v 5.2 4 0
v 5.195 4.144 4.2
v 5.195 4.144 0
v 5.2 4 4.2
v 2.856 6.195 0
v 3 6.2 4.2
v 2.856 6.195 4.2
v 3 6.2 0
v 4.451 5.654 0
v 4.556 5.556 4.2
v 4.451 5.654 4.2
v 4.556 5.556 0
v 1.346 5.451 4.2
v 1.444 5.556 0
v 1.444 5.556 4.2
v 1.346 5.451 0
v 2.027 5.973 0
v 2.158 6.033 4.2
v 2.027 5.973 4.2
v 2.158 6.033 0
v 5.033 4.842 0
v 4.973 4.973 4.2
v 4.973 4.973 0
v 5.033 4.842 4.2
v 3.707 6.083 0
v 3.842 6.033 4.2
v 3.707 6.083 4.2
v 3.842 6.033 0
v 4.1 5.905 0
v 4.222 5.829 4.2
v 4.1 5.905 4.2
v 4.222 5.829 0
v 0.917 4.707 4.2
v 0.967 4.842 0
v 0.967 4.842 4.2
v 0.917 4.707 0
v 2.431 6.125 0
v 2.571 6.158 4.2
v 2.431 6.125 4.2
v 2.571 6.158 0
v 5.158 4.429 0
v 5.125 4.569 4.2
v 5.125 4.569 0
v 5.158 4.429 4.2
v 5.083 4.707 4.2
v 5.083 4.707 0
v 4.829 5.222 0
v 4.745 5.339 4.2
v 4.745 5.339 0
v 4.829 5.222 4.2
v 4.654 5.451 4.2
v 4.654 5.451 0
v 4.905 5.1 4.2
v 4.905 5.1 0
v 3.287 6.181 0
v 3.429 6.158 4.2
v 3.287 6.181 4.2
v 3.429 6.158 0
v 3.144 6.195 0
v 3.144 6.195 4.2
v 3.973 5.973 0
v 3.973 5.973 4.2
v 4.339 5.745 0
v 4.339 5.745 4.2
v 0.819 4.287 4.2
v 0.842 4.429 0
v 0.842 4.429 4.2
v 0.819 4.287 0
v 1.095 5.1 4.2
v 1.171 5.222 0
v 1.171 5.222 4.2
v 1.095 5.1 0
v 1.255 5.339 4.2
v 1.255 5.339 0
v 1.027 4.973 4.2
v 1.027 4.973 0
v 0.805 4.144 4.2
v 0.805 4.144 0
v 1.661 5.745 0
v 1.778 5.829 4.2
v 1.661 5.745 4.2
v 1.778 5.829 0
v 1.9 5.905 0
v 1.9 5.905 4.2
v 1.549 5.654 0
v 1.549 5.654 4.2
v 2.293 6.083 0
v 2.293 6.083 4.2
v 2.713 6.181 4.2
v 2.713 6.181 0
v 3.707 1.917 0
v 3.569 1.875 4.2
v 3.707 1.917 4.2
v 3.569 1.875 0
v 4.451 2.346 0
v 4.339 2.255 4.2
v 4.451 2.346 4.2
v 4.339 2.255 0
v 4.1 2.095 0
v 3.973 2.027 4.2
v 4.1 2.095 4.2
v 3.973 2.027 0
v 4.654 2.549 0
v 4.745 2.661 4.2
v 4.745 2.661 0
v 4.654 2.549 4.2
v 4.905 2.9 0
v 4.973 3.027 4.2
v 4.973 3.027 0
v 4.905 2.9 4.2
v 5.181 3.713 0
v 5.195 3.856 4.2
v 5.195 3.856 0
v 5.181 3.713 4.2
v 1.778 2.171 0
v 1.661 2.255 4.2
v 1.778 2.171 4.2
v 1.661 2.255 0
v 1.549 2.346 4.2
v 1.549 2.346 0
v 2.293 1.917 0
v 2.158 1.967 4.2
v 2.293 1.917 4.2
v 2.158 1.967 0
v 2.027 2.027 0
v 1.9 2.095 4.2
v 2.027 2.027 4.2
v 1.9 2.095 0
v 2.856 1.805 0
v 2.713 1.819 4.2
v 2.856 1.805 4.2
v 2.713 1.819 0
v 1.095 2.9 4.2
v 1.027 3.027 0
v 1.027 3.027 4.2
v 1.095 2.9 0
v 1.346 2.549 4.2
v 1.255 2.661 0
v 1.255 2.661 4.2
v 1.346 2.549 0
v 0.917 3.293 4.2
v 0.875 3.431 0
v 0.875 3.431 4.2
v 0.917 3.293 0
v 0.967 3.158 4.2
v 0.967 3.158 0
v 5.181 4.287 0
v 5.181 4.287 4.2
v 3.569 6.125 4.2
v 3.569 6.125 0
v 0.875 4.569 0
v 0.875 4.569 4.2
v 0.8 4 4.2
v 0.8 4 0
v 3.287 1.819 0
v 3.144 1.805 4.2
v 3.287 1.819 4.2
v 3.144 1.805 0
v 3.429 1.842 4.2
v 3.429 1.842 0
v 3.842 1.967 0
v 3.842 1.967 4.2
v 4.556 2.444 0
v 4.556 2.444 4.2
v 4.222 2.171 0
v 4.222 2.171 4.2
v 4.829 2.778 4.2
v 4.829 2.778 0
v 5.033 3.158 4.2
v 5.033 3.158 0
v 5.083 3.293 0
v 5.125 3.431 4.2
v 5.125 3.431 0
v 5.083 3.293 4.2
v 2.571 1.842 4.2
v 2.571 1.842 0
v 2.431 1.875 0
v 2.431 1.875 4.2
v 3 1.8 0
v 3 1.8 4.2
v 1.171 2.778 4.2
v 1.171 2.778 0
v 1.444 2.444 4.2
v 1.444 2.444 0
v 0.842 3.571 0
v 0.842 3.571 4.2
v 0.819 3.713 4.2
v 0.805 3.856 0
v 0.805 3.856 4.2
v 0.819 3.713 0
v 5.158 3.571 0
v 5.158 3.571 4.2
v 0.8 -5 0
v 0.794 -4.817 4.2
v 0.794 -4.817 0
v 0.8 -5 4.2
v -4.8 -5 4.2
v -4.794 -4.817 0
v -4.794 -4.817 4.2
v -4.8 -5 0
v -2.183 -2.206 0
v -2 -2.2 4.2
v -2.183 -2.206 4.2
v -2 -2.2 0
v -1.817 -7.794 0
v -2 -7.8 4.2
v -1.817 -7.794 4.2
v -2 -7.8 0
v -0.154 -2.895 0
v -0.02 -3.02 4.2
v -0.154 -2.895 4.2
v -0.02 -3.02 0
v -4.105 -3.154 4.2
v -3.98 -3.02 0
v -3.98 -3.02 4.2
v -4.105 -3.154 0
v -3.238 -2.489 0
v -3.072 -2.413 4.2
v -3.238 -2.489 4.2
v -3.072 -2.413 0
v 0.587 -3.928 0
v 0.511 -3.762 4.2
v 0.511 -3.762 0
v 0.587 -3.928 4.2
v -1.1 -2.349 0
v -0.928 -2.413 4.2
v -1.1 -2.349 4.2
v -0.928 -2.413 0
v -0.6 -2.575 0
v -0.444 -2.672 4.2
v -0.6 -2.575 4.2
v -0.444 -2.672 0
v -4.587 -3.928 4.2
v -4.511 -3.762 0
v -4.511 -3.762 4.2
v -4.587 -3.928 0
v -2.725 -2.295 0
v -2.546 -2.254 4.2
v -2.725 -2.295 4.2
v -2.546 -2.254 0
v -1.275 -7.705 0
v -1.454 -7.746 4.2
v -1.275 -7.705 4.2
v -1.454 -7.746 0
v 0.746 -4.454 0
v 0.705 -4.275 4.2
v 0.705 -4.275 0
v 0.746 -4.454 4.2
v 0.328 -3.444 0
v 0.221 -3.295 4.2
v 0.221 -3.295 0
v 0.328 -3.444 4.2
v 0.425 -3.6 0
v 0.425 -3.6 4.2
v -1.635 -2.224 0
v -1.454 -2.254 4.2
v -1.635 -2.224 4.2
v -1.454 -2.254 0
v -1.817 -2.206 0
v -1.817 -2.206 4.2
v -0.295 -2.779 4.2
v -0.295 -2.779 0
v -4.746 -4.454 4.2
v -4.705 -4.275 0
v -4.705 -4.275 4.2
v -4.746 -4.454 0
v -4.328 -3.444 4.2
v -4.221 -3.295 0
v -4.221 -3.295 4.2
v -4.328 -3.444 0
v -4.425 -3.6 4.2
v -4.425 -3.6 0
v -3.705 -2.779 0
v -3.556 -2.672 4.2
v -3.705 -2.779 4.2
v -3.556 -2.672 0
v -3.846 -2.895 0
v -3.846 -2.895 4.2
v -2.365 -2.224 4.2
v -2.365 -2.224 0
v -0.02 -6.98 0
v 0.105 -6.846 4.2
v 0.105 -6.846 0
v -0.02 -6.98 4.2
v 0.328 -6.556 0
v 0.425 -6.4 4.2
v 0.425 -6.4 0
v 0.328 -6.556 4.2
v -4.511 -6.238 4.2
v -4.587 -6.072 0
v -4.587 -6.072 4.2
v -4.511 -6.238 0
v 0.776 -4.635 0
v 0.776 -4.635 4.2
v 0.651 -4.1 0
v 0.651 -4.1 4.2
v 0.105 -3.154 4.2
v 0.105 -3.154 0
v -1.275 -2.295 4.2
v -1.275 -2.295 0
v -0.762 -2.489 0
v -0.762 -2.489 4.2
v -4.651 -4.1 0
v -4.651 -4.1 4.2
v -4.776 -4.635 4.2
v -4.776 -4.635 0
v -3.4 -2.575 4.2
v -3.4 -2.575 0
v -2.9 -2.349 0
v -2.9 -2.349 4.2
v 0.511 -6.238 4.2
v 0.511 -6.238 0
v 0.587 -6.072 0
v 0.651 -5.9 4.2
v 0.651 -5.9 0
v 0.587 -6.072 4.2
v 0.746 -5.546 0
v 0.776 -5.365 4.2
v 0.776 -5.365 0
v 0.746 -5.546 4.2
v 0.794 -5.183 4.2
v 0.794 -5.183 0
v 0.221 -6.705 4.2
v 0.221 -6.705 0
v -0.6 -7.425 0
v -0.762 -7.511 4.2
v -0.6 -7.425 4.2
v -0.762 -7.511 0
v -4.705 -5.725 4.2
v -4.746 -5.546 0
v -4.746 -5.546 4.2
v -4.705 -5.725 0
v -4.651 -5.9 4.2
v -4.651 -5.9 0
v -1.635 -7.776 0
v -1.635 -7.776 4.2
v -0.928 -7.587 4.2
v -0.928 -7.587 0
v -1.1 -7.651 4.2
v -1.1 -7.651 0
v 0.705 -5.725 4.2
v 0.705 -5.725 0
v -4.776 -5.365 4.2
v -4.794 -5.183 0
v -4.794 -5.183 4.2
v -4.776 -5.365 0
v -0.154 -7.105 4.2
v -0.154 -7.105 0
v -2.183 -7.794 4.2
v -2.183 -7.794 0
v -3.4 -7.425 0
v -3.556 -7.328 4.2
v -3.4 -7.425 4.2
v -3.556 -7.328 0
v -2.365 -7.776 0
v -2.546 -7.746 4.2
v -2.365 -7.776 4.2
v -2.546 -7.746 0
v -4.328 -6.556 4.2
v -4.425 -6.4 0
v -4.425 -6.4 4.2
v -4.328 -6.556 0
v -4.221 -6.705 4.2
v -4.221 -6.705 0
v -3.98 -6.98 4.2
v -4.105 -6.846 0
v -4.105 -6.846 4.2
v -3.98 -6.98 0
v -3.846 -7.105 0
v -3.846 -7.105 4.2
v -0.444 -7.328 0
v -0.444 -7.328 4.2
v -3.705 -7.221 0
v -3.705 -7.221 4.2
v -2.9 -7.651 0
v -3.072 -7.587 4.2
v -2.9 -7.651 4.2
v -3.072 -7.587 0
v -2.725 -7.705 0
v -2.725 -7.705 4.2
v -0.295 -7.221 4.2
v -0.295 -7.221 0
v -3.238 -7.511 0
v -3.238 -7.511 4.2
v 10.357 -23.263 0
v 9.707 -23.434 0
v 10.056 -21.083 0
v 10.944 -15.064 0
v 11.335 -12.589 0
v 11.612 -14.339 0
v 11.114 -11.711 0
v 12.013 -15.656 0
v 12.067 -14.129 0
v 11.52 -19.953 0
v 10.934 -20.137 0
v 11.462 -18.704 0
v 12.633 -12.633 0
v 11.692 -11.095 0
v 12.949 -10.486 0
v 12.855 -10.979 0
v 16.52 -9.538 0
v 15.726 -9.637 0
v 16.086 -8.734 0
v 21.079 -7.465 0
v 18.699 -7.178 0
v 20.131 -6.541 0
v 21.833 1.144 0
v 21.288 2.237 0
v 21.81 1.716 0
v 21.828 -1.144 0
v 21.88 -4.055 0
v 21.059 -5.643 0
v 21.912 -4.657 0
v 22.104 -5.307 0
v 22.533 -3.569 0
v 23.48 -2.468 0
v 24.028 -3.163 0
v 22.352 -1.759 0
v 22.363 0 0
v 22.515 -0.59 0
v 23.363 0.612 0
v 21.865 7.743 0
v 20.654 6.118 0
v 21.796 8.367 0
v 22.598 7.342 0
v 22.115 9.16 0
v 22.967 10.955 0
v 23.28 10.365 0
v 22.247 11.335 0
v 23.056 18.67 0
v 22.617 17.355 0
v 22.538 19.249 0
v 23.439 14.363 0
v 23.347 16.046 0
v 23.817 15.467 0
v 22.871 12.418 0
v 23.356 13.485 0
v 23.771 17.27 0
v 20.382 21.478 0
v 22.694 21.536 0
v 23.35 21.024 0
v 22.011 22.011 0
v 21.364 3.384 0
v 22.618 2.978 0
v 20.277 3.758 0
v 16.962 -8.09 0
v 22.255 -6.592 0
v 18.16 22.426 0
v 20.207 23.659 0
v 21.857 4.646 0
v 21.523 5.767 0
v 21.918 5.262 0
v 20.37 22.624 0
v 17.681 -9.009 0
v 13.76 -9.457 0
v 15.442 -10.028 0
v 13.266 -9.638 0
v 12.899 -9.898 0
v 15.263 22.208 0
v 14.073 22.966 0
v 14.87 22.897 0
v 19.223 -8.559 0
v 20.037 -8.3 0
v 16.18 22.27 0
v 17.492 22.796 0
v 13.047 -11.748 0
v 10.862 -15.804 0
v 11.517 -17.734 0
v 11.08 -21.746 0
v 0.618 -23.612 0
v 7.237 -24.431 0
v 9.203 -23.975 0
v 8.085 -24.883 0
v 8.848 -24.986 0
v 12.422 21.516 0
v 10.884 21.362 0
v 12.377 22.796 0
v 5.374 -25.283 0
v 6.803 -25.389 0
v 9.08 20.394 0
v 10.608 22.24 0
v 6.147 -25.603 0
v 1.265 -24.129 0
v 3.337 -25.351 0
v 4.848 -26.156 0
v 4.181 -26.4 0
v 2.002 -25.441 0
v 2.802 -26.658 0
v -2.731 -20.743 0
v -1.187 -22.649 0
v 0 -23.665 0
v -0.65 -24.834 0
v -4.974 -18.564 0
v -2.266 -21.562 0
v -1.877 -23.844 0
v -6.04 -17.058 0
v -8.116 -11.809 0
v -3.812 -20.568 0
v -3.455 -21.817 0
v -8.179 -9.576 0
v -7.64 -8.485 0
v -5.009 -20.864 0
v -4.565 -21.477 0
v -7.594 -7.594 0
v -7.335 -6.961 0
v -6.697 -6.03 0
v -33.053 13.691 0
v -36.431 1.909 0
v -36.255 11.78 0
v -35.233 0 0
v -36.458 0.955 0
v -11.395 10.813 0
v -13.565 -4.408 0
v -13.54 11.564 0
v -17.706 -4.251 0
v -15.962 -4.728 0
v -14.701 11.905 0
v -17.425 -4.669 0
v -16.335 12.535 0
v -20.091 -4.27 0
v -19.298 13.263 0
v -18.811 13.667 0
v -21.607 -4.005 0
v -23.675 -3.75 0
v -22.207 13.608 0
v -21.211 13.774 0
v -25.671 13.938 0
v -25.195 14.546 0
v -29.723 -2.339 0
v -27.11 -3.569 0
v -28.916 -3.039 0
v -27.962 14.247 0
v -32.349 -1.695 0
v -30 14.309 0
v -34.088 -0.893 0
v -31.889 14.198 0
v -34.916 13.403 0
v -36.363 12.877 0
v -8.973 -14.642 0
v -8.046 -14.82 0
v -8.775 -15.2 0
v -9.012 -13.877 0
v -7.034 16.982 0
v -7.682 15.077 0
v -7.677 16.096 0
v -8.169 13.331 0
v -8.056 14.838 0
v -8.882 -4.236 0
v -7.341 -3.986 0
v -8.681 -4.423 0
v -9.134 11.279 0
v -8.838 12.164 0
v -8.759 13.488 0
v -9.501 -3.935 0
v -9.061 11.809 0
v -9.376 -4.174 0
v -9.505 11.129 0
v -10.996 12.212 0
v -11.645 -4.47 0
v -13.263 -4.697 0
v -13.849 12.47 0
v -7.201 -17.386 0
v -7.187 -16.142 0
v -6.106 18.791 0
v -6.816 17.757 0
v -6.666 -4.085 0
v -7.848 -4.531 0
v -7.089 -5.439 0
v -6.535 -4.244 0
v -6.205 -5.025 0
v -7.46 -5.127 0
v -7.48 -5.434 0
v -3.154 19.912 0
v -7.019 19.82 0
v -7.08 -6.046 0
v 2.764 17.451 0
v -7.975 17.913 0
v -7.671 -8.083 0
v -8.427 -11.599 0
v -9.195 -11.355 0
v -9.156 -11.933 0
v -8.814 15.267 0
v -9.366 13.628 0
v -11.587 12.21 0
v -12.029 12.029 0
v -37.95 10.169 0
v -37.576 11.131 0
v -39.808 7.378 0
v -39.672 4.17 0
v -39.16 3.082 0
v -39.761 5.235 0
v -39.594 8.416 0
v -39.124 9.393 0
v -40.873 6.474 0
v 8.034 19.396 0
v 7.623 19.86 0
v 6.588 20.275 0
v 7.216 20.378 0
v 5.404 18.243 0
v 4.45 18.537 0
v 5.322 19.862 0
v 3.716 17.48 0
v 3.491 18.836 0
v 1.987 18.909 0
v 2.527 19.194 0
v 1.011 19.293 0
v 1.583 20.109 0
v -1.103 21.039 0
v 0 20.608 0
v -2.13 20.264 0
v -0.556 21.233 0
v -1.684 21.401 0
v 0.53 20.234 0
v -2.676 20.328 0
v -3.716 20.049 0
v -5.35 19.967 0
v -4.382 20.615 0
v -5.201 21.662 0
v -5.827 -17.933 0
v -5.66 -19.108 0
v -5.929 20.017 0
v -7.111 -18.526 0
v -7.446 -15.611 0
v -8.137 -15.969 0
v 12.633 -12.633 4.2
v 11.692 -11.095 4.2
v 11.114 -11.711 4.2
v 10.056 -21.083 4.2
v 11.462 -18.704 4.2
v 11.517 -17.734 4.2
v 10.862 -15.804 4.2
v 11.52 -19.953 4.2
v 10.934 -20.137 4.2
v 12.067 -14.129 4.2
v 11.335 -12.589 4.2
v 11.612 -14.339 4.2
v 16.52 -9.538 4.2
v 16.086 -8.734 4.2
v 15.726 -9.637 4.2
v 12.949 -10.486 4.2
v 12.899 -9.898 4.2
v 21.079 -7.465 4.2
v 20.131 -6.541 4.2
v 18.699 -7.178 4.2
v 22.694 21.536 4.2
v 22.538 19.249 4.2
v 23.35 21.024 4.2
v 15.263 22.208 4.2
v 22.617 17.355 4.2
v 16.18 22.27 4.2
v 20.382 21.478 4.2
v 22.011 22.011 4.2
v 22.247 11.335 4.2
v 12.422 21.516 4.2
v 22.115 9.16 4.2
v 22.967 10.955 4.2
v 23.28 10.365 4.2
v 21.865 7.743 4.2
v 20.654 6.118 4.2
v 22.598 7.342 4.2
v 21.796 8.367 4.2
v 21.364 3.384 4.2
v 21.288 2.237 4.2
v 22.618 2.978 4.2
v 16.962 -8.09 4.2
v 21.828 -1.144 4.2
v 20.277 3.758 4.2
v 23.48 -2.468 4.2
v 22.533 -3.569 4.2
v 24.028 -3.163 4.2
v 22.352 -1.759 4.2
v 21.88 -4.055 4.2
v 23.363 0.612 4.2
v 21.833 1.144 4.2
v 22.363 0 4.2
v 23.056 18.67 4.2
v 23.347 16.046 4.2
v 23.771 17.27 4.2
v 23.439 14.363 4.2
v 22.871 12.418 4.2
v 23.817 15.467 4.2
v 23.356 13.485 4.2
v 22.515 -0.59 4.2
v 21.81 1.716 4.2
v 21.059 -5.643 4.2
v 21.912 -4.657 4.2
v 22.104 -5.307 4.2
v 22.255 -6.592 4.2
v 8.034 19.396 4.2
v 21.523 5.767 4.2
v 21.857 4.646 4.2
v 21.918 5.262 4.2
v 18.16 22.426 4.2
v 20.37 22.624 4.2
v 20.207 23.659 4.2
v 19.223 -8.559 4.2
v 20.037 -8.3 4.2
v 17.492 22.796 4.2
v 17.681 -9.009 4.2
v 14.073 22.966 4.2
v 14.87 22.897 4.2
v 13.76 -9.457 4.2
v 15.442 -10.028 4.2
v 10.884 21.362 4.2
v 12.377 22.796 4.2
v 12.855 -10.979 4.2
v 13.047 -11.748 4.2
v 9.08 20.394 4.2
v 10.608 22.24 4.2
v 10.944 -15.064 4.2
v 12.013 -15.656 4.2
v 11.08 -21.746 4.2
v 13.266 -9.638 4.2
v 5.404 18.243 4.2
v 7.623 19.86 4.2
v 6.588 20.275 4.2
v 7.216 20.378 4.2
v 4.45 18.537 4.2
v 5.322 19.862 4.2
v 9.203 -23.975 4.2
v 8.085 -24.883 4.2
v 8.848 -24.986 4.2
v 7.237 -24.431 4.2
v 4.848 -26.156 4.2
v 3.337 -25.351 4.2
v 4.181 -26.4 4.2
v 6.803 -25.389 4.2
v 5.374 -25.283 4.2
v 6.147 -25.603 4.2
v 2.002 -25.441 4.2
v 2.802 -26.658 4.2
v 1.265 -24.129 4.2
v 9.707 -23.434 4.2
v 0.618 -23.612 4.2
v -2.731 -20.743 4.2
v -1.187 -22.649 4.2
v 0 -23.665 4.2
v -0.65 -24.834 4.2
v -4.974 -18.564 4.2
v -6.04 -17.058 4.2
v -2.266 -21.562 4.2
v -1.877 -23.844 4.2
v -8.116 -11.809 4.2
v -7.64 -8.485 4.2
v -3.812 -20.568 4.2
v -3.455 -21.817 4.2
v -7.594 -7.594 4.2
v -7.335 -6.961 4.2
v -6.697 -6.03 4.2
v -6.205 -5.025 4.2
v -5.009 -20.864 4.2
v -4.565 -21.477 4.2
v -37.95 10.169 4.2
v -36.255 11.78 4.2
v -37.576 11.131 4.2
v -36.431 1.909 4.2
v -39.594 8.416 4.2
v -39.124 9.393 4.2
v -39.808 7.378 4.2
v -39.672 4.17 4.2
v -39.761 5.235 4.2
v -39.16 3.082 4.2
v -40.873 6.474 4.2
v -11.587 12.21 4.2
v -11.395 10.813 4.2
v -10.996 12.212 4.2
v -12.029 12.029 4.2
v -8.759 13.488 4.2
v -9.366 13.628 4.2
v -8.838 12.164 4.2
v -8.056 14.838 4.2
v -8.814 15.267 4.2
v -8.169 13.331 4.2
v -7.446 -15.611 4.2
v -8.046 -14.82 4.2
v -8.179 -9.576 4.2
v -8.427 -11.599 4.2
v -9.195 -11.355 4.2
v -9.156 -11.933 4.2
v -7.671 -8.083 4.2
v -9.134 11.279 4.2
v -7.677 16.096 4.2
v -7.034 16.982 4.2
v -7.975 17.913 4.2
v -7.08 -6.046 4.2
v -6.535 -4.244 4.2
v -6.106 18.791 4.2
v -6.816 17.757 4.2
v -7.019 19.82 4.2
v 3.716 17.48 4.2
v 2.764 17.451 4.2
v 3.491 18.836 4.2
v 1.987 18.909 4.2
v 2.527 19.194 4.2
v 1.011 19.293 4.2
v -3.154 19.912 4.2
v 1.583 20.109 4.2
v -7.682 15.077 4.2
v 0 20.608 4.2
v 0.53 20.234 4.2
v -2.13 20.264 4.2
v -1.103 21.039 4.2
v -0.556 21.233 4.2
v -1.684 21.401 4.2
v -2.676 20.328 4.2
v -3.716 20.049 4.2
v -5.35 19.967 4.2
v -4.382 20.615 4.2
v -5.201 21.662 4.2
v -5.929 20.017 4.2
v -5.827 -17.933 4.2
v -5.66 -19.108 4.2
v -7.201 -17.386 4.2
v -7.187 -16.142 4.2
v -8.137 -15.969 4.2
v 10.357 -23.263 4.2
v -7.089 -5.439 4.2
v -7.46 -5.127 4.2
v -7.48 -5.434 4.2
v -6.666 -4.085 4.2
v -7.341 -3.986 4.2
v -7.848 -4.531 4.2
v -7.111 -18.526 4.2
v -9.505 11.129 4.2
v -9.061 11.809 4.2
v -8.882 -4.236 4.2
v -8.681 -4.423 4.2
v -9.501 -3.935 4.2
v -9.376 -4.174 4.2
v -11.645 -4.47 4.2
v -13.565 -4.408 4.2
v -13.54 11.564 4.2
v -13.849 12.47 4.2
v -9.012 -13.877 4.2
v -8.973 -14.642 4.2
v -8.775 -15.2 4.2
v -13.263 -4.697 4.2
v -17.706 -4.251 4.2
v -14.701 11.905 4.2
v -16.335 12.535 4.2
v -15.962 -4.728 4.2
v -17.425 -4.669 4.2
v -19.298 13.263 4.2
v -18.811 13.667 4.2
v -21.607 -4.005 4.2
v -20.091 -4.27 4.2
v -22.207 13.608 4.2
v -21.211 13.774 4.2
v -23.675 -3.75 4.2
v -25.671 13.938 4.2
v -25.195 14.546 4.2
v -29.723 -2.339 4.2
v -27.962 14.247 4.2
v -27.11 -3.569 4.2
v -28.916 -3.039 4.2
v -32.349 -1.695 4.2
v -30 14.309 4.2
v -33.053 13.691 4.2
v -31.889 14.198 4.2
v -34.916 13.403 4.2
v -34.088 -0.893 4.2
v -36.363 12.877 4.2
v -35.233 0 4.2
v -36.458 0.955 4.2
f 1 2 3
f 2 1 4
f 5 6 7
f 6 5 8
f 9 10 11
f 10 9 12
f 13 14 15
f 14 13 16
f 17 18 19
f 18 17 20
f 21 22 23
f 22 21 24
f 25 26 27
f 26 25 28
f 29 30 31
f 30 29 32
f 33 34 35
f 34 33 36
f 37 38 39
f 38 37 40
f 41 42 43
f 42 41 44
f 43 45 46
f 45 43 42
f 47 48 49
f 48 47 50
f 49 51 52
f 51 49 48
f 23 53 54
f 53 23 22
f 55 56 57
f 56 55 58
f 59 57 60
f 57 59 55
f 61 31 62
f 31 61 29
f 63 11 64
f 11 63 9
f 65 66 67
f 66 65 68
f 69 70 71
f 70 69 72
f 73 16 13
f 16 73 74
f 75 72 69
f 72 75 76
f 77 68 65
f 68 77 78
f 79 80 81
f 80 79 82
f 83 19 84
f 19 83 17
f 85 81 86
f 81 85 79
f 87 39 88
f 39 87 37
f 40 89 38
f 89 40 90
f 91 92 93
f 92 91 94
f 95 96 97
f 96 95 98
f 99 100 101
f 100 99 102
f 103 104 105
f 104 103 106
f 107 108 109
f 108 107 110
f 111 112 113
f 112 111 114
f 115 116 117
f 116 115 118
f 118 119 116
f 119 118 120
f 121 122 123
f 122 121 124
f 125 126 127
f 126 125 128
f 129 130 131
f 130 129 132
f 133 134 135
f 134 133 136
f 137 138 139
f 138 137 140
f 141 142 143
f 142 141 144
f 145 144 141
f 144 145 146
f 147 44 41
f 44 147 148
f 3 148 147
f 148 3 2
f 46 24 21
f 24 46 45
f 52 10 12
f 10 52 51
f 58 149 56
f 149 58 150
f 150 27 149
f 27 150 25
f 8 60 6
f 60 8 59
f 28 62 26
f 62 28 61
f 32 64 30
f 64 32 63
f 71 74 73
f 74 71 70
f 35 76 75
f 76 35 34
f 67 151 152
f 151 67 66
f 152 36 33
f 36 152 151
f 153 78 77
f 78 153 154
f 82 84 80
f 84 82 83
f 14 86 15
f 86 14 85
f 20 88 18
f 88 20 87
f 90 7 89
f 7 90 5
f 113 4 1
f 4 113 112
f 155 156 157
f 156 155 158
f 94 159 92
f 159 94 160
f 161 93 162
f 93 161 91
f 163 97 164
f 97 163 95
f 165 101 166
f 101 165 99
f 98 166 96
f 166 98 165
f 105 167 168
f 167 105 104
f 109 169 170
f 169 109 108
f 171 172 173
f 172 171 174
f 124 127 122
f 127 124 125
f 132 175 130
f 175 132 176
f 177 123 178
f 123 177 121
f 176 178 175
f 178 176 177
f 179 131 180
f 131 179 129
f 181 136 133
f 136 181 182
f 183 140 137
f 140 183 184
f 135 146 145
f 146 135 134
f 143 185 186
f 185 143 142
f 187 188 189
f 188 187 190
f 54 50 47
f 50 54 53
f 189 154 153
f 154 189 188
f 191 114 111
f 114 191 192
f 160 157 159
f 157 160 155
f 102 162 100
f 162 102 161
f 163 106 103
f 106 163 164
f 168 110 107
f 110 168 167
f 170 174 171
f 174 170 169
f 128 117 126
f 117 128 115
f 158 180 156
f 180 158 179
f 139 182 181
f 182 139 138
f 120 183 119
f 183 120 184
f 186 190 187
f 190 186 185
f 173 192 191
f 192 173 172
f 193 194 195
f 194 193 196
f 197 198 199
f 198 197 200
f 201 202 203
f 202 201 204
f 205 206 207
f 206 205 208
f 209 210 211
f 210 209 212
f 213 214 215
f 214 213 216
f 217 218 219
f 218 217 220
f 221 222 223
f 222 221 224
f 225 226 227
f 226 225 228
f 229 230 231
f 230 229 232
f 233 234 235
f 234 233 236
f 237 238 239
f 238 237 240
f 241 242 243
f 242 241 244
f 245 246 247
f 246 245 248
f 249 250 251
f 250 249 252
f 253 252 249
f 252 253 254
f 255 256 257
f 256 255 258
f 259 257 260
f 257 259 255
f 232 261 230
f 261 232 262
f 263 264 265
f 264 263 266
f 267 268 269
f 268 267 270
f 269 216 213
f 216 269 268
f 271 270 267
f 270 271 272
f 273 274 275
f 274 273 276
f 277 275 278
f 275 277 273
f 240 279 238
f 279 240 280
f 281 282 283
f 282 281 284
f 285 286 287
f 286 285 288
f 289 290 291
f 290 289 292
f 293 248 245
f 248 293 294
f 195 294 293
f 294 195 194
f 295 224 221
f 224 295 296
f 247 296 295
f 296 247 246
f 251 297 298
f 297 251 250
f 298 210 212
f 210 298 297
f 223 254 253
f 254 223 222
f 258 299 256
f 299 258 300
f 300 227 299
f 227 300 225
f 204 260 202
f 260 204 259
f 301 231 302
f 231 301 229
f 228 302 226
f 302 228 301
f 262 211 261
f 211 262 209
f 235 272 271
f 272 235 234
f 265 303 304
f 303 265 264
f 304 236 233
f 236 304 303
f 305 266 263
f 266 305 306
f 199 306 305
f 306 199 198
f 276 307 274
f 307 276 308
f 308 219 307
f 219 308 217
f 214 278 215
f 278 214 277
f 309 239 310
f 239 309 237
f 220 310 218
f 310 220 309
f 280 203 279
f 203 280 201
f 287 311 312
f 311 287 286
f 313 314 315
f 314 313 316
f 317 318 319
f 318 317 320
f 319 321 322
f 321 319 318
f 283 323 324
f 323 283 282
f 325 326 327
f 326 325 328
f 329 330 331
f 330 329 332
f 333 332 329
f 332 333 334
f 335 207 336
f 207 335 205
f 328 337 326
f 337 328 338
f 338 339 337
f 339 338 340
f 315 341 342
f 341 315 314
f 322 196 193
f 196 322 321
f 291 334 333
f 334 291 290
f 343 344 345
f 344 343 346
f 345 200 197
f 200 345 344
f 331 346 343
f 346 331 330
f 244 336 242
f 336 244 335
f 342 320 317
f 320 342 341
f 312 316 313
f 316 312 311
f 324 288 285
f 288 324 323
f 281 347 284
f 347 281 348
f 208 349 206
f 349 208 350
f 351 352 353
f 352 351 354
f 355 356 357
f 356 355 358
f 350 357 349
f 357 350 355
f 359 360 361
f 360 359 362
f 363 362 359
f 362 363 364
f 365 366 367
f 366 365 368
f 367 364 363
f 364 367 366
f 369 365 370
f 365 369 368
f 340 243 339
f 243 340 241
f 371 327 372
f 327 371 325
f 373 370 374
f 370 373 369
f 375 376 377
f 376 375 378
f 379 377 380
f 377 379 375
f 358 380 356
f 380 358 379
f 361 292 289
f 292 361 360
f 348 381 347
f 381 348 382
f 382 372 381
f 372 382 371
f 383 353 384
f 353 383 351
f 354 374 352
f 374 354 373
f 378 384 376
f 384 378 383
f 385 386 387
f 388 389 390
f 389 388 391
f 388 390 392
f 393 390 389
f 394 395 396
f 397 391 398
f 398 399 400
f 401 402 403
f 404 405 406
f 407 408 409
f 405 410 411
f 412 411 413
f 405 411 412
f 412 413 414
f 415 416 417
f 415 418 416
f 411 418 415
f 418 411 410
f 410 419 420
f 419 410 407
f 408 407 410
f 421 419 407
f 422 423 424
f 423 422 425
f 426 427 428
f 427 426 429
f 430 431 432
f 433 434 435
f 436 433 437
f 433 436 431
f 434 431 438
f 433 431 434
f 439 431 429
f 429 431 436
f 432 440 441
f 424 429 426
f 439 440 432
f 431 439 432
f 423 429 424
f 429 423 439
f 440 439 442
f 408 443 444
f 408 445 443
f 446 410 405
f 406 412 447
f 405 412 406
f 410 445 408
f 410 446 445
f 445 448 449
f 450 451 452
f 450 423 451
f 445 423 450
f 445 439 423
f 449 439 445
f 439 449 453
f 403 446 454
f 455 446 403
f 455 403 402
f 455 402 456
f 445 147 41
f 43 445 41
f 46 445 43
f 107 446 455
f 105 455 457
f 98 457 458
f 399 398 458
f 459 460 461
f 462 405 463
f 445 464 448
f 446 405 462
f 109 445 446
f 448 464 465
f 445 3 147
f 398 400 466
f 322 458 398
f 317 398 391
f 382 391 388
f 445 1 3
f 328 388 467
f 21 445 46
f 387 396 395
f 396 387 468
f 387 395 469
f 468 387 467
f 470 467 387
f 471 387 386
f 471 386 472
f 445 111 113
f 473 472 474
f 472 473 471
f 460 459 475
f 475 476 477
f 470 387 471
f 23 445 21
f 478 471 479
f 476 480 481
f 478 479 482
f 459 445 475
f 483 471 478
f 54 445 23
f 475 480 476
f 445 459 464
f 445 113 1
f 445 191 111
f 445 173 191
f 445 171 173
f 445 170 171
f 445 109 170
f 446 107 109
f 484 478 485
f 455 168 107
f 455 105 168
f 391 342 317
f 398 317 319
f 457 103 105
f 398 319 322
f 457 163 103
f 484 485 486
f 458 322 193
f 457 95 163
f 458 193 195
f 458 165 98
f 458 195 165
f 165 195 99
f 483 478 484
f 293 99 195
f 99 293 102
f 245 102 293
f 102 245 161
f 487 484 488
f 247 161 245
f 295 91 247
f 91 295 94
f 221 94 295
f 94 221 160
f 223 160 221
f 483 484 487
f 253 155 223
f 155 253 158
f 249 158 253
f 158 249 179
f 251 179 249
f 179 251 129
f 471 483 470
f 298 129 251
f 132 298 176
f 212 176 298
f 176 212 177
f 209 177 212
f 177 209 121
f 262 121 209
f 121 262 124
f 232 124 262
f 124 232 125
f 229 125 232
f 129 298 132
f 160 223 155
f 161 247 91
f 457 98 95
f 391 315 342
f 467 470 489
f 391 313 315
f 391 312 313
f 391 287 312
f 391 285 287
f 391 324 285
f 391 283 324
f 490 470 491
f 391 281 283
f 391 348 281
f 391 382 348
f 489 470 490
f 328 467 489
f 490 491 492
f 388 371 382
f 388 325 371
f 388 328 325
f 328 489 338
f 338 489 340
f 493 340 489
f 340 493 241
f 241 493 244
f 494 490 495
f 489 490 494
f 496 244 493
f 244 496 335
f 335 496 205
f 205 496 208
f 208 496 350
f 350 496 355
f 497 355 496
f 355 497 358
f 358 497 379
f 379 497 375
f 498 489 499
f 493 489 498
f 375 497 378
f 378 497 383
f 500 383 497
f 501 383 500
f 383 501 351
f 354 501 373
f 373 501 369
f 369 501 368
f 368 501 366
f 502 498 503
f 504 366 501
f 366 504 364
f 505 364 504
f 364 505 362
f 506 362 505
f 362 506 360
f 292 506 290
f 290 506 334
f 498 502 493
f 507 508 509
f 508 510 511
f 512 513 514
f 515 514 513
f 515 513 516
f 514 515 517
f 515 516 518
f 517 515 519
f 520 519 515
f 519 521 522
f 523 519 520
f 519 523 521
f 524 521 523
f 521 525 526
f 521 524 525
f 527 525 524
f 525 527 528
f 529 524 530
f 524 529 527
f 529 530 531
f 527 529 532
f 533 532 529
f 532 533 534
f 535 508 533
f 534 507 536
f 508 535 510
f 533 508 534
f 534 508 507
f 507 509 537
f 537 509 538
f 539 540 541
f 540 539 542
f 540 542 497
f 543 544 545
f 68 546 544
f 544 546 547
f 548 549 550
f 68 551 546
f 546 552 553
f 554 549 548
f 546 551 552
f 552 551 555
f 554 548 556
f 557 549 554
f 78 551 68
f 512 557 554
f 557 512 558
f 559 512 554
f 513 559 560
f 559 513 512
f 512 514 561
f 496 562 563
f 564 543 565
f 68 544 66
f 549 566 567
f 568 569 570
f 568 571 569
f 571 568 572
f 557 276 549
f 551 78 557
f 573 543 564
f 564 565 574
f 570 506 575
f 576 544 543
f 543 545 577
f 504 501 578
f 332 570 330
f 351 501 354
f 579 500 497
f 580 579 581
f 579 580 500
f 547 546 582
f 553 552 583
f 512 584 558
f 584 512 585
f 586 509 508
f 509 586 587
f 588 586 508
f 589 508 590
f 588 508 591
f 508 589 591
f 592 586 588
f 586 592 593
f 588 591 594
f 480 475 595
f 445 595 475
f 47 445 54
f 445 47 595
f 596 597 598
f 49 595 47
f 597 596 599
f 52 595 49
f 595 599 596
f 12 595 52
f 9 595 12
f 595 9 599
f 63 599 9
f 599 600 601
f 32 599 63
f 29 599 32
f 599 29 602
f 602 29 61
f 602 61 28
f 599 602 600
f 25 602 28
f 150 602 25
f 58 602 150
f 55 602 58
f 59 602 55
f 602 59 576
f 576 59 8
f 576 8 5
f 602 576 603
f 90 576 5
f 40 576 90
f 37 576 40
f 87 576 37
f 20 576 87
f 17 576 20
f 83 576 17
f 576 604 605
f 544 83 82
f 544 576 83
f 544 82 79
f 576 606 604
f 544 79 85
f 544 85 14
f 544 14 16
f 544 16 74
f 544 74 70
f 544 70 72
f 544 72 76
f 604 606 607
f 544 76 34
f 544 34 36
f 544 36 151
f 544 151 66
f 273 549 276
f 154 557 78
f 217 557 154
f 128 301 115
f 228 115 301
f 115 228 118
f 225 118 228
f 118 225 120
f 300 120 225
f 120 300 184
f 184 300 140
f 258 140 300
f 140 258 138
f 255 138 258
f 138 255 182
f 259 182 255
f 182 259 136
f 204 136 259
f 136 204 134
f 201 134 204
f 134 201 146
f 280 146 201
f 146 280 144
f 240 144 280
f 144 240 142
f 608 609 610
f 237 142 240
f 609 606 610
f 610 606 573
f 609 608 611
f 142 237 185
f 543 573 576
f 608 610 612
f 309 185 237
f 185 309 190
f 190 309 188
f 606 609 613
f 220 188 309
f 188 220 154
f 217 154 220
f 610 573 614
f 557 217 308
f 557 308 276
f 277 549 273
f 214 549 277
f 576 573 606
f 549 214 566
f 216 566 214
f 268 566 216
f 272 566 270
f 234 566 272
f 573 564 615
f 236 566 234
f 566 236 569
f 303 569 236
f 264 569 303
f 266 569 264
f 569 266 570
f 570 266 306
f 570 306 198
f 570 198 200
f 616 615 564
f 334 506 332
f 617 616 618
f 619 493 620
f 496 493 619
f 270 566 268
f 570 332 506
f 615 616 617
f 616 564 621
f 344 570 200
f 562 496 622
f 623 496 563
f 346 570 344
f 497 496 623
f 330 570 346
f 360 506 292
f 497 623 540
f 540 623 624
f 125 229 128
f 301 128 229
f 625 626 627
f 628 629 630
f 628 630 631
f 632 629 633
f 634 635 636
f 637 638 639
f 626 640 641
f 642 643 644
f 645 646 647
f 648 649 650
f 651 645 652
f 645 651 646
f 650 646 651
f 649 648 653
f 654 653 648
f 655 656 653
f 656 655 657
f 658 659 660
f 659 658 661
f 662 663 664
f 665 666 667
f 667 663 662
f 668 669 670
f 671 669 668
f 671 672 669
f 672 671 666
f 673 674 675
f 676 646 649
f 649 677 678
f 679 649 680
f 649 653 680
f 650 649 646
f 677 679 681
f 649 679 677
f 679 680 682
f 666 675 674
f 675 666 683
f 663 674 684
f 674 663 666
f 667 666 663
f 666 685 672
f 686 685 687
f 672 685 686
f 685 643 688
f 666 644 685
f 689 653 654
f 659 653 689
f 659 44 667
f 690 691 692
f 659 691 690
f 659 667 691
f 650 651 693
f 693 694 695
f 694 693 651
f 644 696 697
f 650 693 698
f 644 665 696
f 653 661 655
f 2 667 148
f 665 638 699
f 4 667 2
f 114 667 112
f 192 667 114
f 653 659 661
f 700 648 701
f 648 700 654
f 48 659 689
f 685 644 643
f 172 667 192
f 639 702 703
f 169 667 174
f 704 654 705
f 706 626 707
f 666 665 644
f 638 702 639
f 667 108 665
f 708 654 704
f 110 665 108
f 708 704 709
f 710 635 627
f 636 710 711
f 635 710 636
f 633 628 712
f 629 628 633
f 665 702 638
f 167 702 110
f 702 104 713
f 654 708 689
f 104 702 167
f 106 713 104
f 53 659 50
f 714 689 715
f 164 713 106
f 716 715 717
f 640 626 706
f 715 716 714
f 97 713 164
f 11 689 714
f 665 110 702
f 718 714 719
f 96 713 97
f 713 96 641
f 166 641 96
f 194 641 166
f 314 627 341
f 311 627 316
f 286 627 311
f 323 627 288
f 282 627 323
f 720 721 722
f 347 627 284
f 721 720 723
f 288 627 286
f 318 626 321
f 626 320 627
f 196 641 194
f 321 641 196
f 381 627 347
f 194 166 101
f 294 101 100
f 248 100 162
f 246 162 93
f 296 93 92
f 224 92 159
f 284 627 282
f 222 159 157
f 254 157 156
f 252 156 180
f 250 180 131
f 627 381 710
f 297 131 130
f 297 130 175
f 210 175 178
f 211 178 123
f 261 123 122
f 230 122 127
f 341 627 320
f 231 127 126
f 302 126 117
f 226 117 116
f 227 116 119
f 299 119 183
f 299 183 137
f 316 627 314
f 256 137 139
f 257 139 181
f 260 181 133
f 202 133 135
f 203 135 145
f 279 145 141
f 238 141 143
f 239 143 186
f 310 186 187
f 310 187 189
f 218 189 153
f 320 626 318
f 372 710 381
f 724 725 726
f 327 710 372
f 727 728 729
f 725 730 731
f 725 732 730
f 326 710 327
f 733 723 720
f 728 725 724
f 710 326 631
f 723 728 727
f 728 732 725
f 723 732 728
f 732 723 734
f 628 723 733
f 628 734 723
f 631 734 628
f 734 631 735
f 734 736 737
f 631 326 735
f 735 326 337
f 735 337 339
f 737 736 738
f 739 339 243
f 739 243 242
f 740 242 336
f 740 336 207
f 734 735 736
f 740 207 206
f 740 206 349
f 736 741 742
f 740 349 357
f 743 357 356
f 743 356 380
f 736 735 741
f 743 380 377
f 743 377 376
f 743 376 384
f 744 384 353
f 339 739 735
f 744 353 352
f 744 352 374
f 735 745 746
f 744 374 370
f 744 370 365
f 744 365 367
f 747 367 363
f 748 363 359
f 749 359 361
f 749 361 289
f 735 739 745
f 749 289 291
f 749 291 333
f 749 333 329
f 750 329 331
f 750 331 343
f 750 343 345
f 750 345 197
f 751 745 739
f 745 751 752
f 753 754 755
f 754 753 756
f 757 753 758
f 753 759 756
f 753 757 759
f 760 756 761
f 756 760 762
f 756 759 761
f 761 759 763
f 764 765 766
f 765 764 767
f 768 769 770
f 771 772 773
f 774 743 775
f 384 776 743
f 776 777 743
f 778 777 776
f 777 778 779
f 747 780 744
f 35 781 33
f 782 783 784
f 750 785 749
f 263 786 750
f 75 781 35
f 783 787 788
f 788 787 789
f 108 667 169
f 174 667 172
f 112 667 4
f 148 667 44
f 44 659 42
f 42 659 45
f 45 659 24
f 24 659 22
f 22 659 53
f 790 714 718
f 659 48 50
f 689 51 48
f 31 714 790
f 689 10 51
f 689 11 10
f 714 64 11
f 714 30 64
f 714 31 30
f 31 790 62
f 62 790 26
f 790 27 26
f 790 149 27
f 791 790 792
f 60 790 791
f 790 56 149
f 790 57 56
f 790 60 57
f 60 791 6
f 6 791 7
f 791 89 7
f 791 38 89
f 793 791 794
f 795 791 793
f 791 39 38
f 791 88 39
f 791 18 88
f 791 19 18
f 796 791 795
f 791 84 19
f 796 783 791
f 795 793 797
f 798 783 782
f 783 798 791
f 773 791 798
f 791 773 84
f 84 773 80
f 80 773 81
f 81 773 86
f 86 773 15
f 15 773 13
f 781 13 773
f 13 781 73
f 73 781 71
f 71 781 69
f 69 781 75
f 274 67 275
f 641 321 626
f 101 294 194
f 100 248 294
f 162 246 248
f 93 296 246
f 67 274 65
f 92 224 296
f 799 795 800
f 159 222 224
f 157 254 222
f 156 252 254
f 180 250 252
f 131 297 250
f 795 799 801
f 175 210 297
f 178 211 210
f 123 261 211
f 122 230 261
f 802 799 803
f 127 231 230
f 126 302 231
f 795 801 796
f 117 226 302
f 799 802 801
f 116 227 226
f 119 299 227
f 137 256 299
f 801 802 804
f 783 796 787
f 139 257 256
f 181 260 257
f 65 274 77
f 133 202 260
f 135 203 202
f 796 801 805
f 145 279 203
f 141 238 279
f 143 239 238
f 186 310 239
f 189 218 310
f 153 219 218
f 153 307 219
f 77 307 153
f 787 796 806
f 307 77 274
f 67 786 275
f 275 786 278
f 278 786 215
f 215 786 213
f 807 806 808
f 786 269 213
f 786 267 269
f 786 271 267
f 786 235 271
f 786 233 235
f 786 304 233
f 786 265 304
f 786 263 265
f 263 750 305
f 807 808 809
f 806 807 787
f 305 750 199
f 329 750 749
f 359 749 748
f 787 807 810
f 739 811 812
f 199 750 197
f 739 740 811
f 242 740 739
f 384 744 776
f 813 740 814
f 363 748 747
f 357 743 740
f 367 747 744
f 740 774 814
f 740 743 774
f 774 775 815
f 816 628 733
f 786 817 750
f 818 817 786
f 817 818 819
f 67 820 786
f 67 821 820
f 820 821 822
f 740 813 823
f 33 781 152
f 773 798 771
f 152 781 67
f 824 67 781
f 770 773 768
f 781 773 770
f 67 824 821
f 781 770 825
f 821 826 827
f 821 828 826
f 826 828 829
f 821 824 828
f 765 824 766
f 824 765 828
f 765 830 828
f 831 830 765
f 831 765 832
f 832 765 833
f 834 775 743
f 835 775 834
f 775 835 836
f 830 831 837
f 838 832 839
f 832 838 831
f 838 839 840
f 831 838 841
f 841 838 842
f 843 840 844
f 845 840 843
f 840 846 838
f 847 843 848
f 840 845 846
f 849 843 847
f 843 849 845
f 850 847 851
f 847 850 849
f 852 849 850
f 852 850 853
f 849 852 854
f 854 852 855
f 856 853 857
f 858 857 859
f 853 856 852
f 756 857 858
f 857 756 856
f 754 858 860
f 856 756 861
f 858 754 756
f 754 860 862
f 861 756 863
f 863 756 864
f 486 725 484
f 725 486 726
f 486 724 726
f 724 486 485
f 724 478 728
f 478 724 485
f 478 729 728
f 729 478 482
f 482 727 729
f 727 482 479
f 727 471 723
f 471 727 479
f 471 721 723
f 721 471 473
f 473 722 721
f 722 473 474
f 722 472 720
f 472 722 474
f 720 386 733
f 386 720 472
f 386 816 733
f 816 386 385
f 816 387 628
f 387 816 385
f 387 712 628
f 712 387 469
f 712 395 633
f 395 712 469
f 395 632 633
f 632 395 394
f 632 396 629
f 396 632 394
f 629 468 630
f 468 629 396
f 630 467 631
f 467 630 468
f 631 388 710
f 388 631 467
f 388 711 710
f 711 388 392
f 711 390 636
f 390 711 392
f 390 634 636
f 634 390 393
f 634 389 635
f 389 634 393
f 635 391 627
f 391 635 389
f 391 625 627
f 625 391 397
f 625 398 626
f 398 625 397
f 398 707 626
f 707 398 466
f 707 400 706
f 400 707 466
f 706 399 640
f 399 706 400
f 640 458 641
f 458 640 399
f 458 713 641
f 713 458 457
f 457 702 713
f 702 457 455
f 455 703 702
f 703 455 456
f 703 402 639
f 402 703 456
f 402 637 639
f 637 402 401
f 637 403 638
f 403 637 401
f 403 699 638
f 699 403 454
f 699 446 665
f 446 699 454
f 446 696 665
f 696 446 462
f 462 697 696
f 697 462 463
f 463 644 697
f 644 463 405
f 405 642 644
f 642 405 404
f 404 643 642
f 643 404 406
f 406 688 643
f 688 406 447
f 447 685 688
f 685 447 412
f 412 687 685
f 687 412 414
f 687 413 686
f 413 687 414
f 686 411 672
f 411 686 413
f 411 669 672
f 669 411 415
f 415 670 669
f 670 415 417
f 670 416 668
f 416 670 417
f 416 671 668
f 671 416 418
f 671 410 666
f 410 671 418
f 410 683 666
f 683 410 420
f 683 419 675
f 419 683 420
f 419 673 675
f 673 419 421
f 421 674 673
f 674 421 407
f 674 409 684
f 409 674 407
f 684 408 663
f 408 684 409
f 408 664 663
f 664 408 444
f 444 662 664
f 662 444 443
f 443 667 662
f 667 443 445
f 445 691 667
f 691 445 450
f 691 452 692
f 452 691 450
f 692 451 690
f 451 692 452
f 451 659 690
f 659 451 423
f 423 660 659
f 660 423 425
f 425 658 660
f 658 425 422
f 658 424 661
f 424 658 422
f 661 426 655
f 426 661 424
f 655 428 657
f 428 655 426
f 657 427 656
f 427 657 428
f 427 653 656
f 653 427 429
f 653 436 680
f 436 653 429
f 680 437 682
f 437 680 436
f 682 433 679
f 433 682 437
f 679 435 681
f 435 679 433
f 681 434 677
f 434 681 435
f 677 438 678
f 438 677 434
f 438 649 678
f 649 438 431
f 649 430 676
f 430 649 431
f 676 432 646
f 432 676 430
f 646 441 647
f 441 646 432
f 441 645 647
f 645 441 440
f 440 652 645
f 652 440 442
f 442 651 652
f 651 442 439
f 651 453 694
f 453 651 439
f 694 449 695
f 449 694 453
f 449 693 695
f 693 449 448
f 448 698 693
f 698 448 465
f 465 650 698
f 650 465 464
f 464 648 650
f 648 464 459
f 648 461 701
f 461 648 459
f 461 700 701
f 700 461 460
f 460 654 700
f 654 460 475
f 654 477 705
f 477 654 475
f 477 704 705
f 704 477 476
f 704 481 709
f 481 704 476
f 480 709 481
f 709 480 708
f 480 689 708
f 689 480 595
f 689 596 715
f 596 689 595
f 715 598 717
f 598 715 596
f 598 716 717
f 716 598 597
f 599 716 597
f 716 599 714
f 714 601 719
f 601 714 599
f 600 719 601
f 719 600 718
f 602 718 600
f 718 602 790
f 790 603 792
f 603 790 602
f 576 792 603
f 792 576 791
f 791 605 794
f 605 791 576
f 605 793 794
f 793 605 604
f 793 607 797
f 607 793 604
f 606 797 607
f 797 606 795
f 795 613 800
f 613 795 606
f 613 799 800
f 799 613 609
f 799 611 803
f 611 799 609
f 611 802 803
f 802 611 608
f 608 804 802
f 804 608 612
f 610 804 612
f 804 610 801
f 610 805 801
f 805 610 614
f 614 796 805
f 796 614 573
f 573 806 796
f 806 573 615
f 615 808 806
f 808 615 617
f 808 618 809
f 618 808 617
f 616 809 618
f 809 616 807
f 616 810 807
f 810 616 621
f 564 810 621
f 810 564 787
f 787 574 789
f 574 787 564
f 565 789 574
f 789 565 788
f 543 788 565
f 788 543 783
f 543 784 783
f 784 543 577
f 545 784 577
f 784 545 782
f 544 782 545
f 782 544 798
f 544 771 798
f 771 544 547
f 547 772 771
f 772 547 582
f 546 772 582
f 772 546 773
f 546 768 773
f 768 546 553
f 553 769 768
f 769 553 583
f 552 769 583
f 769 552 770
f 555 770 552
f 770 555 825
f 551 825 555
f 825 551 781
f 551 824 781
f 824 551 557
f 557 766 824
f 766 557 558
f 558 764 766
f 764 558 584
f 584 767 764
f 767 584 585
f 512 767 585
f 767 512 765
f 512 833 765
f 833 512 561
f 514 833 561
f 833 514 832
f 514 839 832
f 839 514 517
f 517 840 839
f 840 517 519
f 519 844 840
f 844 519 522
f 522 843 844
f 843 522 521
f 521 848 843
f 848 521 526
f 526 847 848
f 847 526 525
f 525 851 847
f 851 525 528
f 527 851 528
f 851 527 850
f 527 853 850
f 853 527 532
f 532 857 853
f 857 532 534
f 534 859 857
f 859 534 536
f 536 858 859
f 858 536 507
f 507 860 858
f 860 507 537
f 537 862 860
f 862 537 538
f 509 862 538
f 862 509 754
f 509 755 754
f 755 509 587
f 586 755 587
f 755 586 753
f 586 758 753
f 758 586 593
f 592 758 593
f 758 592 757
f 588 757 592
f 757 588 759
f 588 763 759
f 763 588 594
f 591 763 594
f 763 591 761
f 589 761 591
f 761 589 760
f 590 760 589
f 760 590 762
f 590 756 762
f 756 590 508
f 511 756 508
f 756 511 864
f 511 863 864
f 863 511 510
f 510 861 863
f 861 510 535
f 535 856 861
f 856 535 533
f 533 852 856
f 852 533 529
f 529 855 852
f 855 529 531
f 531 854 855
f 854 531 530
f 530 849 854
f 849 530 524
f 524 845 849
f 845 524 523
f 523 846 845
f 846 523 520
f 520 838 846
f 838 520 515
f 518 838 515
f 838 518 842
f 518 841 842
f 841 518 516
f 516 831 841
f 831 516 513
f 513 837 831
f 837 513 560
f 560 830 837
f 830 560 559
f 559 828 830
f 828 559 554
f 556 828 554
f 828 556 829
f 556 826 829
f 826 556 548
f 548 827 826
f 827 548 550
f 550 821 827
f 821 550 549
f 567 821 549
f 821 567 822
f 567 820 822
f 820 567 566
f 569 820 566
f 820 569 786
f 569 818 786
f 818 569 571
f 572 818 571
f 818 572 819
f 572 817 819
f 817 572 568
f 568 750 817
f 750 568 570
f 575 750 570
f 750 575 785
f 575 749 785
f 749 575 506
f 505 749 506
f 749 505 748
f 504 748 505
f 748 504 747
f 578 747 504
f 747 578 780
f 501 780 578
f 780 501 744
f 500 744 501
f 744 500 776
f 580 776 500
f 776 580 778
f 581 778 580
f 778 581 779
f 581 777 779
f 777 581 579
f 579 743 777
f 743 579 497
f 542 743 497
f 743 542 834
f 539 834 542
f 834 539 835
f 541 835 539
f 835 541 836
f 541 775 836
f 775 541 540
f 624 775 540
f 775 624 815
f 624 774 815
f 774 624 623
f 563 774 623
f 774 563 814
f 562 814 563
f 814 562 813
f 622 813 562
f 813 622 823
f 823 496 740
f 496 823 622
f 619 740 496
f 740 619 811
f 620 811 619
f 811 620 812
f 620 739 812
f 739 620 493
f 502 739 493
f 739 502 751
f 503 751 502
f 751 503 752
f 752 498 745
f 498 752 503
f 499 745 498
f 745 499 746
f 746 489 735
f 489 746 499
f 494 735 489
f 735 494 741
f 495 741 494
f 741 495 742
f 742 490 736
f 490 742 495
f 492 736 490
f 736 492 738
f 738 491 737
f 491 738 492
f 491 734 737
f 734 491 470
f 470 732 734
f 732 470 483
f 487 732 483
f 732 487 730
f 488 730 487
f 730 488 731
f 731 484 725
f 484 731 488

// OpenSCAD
$fn=96;
thickness_mm = 4.2;
holes = [[3.0, 4.0, 2.2], [-2.0, -5.0, 2.8]];
pts = [[22.3629, 0.0], [23.3632, 0.6118], [21.8327, 1.1442], [21.8095, 1.7164], [21.2884, 2.2375], [22.6176, 2.9777], [21.3637, 3.3837], [20.2772, 3.7582], [21.8566, 4.6458], [21.9183, 5.2621], [21.5226, 5.767], [20.6536, 6.1179], [22.5977, 7.3424], [21.8647, 7.7427], [21.7958, 8.3666], [22.1152, 9.1604], [23.2795, 10.3647], [22.9671, 10.9548], [22.2468, 11.3353], [22.8713, 12.4181], [23.3564, 13.4848], [23.4386, 14.3632], [23.817, 15.4669], [23.3471, 16.046], [23.7707, 17.2705], [22.6172, 17.3548], [23.0561, 18.6705], [22.5376, 19.2489], [23.3498, 21.0242], [22.6944, 21.5362], [22.0112, 22.0112], [20.3824, 21.4785], [20.3704, 22.6236], [20.2066, 23.6589], [18.1604, 22.4262], [17.4923, 22.7964], [16.1799, 22.2697], [15.2628, 22.2075], [14.8696, 22.8971], [14.0733, 22.9655], [12.4224, 21.5163], [12.3771, 22.7957], [10.8845, 21.3621], [10.608, 22.2401], [9.0802, 20.3944], [8.0343, 19.3965], [7.6235, 19.86], [7.2163, 20.3781], [6.5878, 20.2752], [5.4037, 18.2427], [5.3219, 19.8616], [4.4503, 18.5369], [3.7155, 17.4801], [3.4911, 18.8365], [2.764, 17.451], [2.527, 19.1942], [1.9875, 18.9094], [1.5826, 20.1092], [1.0111, 19.2928], [0.5298, 20.234], [0.0, 20.6085], [-0.556, 21.233], [-1.1026, 21.039], [-1.6843, 21.4011], [-2.1299, 20.2644], [-2.6762, 20.328], [-3.1538, 19.9125], [-3.7158, 20.0486], [-4.3819, 20.6152], [-5.2007, 21.6623], [-5.3501, 19.967], [-5.9293, 20.0169], [-6.1057, 18.7914], [-7.0186, 19.82], [-6.8162, 17.7568], [-7.0342, 16.9821], [-7.9754, 17.9131], [-7.6775, 16.0963], [-7.6823, 15.0773], [-8.0565, 14.8383], [-8.8144, 15.267], [-8.169, 13.3307], [-8.7589, 13.4875], [-9.3659, 13.6275], [-8.8378, 12.1642], [-9.0613, 11.8089], [-9.1338, 11.2793], [-9.5051, 11.129], [-10.9961, 12.2124], [-11.5872, 12.2103], [-12.0291, 12.0291], [-11.3947, 10.8132], [-13.8491, 12.4698], [-13.5402, 11.5644], [-14.7014, 11.905], [-16.3354, 12.5346], [-18.8108, 13.6668], [-19.2982, 13.2633], [-21.2106, 13.7744], [-22.2068, 13.6083], [-25.1947, 14.5461], [-25.671, 13.9382], [-27.9616, 14.2472], [-30.0003, 14.3094], [-31.8893, 14.1981], [-33.0526, 13.6909], [-34.9158, 13.4029], [-36.3626, 12.8767], [-36.2552, 11.78], [-37.5761, 11.1306], [-37.9501, 10.1687], [-39.1238, 9.3928], [-39.5936, 8.4159], [-39.8077, 7.3779], [-40.8734, 6.4737], [-39.7611, 5.2346], [-39.6721, 4.1697], [-39.1598, 3.0819], [-36.4306, 1.9092], [-36.4584, 0.9547], [-35.2329, 0.0], [-34.0882, -0.8926], [-32.3488, -1.6953], [-29.7227, -2.3392], [-28.916, -3.0392], [-27.1104, -3.5691], [-23.6754, -3.7498], [-21.6071, -4.0046], [-20.0906, -4.2704], [-17.7055, -4.2507], [-17.4246, -4.6689], [-15.9616, -4.728], [-13.5654, -4.4077], [-13.2633, -4.6968], [-11.6453, -4.4702], [-9.5006, -3.9353], [-9.3757, -4.1743], [-8.8816, -4.2363], [-8.6815, -4.4235], [-7.341, -3.9858], [-7.8481, -4.5311], [-6.6664, -4.0852], [-6.5352, -4.244], [-7.4596, -5.1268], [-7.4799, -5.4345], [-7.0887, -5.4393], [-6.2054, -5.025], [-7.0795, -6.0465], [-6.6972, -6.0302], [-7.3354, -6.961], [-7.5942, -7.5942], [-7.6709, -8.0834], [-7.6402, -8.4853], [-8.1788, -9.5762], [-9.1953, -11.3553], [-9.1563, -11.9327], [-8.4275, -11.5994], [-8.1163, -11.8092], [-9.0116, -13.8766], [-8.9729, -14.6424], [-8.7754, -15.1995], [-8.0464, -14.8197], [-8.1367, -15.9691], [-7.4461, -15.6111], [-7.1866, -16.1415], [-7.2015, -17.386], [-7.1113, -18.5255], [-6.0405, -17.0579], [-5.8267, -17.9329], [-5.6602, -19.1084], [-4.9742, -18.5638], [-5.0091, -20.8644], [-4.565, -21.4768], [-3.8121, -20.5681], [-3.4554, -21.8167], [-2.7308, -20.7428], [-2.2663, -21.562], [-1.8766, -23.8439], [-1.187, -22.6488], [-0.6503, -24.834], [-0.0, -23.6653], [0.6183, -23.6124], [1.2646, -24.1292], [2.0022, -25.4406], [2.8018, -26.6576], [3.3375, -25.3506], [4.1814, -26.4005], [4.8477, -26.1557], [5.3741, -25.2829], [6.1468, -25.6034], [6.803, -25.389], [7.2368, -24.4312], [8.0849, -24.8828], [8.8482, -24.9865], [9.203, -23.9747], [9.7066, -23.4338], [10.3573, -23.2628], [10.0561, -21.083], [11.0804, -21.7465], [10.9336, -20.1372], [11.5199, -19.9531], [11.4619, -18.7042], [11.5169, -17.7345], [10.8619, -15.8042], [10.9445, -15.0639], [12.0133, -15.6561], [11.6116, -14.3392], [12.0671, -14.1287], [11.3354, -12.5893], [11.1136, -11.7113], [12.6331, -12.6331], [11.692, -11.0953], [13.0469, -11.7475], [12.8553, -10.9794], [12.9486, -10.4855], [12.8991, -9.8978], [13.2661, -9.6384], [13.7603, -9.4572], [15.4421, -10.0282], [15.726, -9.6369], [16.52, -9.5378], [16.0862, -8.7341], [17.6808, -9.0088], [16.9619, -8.0904], [19.2229, -8.5586], [20.0368, -8.2995], [18.6991, -7.1779], [21.0793, -7.4646], [20.1314, -6.5411], [22.2553, -6.5923], [21.0592, -5.6428], [22.1042, -5.3067], [21.9118, -4.6575], [21.8797, -4.0552], [22.5328, -3.5688], [24.0278, -3.1633], [23.4802, -2.4679], [22.3516, -1.7591], [21.8285, -1.144], [22.515, -0.5896]];
module body(){
  linear_extrude(height=thickness_mm) polygon(points=pts);
}
difference(){
  body();
  for(h=holes){
    translate([h[0], h[1], -1]) cylinder(h=thickness_mm+2, r=h[2]);
  }
}
